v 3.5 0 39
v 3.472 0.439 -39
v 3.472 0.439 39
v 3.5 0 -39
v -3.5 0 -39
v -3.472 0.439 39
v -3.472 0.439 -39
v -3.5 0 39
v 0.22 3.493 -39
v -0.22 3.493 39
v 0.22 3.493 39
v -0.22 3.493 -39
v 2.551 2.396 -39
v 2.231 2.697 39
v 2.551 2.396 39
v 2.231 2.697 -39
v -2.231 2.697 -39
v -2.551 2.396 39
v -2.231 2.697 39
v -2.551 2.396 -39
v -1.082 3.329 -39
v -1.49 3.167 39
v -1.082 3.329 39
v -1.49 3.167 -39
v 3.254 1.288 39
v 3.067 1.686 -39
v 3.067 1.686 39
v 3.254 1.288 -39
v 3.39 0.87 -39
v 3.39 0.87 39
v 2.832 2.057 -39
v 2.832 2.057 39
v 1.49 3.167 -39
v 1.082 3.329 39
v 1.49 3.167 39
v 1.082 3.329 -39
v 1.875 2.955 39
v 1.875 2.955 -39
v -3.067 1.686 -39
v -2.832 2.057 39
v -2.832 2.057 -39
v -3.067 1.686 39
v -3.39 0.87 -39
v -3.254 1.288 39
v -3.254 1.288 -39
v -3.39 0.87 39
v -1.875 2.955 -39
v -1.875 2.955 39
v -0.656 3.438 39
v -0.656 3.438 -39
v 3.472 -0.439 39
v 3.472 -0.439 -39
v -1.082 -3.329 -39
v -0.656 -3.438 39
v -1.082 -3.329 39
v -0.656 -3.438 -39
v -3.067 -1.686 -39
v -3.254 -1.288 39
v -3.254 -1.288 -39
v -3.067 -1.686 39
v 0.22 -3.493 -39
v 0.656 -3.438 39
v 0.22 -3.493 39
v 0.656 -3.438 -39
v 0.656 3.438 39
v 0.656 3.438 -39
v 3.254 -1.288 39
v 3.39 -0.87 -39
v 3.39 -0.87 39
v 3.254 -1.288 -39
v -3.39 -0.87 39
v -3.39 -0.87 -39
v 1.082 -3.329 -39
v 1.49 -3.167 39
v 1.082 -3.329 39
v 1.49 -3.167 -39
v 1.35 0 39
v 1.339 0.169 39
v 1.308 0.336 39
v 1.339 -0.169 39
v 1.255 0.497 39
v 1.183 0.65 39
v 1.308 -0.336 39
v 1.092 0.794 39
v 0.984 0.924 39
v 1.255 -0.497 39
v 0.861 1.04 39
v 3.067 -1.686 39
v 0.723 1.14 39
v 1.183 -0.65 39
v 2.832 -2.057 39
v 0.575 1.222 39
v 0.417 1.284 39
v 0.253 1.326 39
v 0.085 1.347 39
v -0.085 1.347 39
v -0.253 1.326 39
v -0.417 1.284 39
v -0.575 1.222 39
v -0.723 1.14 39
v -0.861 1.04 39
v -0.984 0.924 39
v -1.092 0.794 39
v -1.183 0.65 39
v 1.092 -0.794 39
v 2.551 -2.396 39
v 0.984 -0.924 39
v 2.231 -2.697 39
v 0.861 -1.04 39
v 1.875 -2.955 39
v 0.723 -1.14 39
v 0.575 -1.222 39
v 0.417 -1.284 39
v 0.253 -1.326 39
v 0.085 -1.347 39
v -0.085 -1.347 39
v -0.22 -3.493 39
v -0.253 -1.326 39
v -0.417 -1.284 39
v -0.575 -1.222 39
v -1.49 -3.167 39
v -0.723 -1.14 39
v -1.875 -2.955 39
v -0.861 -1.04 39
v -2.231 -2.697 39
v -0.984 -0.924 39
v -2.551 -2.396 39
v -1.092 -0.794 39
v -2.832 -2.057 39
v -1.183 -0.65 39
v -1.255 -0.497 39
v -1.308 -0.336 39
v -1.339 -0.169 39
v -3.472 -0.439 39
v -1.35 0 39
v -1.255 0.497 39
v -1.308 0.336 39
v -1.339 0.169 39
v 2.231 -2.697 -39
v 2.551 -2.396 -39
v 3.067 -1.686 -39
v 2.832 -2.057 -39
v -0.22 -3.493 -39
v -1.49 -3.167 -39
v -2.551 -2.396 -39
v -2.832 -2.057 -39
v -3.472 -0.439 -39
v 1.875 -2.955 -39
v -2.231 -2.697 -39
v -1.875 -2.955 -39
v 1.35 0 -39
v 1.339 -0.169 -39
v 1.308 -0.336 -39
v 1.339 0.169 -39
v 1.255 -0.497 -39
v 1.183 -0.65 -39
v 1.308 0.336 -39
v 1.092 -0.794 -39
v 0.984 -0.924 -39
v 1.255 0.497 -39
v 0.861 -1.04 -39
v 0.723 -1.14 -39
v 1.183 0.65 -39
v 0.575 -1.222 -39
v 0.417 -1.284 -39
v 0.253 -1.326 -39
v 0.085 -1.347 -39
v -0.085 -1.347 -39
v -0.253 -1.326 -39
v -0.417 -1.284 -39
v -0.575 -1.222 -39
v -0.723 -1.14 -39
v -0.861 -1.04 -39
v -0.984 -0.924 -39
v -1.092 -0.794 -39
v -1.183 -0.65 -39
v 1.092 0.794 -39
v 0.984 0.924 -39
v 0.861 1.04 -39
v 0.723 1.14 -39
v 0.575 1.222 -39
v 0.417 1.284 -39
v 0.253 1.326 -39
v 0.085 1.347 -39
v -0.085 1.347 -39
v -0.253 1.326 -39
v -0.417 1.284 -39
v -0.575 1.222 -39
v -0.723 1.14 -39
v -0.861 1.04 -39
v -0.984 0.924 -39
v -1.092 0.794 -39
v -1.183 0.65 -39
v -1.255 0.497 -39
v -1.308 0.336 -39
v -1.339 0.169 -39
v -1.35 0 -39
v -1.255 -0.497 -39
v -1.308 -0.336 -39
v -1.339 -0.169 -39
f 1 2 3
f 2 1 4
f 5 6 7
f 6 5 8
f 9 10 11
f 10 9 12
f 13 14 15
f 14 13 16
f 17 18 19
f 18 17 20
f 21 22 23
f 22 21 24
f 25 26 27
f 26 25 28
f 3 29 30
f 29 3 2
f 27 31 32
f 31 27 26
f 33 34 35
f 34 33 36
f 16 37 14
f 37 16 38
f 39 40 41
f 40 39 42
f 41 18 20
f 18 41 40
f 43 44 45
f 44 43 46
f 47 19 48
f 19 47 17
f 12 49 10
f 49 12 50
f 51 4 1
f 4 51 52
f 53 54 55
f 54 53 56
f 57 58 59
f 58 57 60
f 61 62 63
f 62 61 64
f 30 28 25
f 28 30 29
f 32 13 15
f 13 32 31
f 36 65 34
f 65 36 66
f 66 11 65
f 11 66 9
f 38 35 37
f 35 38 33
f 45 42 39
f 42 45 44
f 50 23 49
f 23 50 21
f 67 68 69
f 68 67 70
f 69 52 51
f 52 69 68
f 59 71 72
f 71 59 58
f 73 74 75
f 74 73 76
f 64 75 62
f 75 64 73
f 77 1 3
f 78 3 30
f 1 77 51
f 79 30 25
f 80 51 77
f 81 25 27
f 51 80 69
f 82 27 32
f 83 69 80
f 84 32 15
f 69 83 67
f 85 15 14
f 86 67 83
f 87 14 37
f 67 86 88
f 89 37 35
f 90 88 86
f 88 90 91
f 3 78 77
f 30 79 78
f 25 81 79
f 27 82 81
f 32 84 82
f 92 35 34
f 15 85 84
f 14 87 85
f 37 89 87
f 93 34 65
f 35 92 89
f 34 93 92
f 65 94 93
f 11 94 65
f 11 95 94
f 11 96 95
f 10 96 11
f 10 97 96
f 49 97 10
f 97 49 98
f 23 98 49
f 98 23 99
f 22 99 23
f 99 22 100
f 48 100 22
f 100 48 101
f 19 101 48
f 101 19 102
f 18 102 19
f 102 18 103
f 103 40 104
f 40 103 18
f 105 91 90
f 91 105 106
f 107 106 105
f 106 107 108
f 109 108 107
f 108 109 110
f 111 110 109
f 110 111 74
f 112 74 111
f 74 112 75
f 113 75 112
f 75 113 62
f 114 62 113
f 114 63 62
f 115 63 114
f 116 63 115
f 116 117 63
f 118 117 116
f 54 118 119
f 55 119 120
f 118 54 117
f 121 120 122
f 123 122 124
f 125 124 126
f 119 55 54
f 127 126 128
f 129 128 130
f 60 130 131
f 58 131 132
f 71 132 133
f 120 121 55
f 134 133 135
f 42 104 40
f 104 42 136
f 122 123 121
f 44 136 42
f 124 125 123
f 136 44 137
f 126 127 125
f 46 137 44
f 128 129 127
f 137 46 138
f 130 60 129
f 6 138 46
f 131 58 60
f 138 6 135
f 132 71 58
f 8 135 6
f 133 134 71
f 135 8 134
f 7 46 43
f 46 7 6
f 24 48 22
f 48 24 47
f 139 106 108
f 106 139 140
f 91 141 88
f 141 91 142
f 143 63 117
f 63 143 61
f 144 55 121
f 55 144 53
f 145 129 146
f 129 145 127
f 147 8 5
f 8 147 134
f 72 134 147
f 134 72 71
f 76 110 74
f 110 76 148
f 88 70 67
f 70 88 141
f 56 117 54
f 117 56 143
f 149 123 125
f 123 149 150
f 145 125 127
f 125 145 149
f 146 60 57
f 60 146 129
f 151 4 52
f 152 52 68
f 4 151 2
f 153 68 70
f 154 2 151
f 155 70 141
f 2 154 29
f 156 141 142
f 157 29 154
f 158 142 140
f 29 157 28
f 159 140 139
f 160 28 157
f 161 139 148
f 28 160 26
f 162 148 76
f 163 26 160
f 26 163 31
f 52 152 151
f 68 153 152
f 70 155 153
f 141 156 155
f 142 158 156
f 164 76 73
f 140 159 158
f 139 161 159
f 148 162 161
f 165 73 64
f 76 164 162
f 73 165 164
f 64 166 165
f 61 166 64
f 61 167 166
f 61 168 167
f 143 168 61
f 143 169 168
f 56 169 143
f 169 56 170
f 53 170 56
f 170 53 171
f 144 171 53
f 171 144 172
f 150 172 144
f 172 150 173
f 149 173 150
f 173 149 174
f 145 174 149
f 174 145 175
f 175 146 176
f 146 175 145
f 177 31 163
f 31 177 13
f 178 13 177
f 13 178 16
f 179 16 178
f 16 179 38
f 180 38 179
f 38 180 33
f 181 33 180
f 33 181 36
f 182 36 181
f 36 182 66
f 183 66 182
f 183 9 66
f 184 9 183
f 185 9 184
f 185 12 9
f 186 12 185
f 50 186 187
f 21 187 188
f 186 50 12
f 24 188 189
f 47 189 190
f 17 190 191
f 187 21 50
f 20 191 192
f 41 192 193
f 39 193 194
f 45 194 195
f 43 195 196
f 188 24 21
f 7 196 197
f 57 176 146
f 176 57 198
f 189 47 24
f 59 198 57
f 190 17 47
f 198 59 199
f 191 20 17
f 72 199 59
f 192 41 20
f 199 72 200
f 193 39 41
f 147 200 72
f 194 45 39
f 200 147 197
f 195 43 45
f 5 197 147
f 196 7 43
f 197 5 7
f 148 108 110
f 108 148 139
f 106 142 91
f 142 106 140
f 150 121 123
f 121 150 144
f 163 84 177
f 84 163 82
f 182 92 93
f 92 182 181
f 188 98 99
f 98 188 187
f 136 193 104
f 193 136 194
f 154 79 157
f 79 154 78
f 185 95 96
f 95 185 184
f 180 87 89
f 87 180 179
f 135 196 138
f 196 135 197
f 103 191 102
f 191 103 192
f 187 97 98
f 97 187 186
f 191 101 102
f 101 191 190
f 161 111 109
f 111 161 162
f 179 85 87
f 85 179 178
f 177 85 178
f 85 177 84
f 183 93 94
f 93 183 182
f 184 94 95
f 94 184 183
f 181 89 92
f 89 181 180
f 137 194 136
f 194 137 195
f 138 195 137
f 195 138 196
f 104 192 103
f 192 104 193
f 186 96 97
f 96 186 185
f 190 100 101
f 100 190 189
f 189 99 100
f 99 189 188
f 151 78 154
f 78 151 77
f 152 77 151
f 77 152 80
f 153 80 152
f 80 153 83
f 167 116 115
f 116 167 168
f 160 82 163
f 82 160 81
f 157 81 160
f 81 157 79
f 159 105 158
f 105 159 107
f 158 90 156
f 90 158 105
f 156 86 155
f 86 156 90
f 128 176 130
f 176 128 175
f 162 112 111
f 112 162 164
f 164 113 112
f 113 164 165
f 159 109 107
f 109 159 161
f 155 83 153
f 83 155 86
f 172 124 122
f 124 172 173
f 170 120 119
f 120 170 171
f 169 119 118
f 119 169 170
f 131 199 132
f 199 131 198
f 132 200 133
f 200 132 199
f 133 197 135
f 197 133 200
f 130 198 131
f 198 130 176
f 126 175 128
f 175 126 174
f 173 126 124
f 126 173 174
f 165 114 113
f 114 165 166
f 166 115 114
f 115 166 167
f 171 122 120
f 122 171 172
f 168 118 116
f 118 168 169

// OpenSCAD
$fn = 50;


difference() {
	union() {
		translate(v = [0, 0, -39.0000000000]) {
			cylinder(h = 78, r = 3.5000000000);
		}
	}
	union() {
		translate(v = [0, 0, -100.0000000000]) {
			cylinder(h = 200, r = 1.3500000000);
		}
	}
}
